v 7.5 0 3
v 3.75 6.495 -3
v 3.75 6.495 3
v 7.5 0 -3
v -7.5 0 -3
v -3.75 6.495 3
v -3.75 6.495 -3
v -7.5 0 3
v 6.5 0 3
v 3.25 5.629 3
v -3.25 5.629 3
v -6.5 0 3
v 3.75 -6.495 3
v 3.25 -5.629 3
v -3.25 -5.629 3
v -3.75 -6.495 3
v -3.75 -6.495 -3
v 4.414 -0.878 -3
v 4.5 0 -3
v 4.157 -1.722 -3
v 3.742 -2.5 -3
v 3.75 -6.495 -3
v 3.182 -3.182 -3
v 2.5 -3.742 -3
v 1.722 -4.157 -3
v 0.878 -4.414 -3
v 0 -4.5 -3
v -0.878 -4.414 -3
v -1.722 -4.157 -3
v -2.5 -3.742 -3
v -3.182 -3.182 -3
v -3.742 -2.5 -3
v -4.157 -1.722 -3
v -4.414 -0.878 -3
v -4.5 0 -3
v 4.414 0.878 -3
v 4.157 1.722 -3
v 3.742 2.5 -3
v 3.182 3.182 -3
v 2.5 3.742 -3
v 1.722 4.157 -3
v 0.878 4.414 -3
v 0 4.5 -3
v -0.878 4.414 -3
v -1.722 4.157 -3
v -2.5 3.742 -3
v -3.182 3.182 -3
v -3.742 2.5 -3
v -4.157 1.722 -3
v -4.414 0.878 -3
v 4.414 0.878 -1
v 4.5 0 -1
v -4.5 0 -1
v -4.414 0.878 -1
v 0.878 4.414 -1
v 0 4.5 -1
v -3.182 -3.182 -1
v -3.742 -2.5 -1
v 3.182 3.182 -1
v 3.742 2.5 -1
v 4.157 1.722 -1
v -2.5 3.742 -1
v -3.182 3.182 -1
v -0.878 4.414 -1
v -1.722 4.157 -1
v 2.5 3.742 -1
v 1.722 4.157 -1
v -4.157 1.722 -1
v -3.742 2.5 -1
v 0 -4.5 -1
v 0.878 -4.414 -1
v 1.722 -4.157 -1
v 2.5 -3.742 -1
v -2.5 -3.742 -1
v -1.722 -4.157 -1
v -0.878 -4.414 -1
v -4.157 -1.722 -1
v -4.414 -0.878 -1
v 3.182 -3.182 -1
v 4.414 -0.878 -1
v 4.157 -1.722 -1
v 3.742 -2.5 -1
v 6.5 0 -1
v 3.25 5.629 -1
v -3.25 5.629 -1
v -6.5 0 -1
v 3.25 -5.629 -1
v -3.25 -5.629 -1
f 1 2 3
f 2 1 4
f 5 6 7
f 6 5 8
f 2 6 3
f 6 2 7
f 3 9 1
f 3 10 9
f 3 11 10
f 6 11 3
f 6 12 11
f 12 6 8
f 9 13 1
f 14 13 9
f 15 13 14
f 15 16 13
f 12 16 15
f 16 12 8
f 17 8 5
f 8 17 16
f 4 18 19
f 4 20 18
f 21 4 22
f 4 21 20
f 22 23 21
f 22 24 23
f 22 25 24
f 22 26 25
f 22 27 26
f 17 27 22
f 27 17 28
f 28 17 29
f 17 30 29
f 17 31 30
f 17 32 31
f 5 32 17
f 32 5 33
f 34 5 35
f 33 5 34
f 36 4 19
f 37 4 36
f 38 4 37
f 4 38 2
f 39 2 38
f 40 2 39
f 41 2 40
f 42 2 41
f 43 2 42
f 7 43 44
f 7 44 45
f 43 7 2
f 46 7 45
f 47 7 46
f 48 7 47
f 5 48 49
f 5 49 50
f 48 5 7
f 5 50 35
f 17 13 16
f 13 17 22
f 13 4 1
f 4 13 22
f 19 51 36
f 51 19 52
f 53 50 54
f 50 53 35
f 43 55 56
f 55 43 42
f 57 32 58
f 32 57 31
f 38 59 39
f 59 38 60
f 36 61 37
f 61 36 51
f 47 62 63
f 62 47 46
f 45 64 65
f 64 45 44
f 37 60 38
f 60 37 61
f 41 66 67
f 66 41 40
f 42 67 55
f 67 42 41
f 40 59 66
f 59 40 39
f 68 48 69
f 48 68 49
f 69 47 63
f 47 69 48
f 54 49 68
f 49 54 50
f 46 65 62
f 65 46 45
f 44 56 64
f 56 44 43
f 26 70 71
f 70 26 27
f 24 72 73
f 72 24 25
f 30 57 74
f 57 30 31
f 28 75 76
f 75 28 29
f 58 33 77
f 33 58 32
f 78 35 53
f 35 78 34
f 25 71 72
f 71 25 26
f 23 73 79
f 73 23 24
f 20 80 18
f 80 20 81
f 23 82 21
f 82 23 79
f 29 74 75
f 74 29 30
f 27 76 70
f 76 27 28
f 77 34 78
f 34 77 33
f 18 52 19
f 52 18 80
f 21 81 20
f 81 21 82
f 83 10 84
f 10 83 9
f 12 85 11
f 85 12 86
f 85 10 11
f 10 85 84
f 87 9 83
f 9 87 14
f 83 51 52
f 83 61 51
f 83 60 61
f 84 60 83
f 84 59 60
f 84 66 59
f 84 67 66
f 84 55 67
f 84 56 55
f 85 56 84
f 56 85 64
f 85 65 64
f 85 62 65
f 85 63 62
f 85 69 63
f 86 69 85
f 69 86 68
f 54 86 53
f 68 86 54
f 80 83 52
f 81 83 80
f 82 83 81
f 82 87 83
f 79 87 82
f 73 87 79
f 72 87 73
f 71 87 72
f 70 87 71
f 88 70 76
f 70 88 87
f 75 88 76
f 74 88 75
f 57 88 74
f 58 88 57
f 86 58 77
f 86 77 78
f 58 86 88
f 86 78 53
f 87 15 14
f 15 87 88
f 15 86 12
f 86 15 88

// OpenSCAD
difference(){

cylinder(r=7.5, h=6, center=true, $fn=6);
cylinder(r=4.5, h=7, center=true, $fn=32);
    translate([0,0,2]) cylinder(r=6.5, h=6, center=true, $fn=6);
    
}
